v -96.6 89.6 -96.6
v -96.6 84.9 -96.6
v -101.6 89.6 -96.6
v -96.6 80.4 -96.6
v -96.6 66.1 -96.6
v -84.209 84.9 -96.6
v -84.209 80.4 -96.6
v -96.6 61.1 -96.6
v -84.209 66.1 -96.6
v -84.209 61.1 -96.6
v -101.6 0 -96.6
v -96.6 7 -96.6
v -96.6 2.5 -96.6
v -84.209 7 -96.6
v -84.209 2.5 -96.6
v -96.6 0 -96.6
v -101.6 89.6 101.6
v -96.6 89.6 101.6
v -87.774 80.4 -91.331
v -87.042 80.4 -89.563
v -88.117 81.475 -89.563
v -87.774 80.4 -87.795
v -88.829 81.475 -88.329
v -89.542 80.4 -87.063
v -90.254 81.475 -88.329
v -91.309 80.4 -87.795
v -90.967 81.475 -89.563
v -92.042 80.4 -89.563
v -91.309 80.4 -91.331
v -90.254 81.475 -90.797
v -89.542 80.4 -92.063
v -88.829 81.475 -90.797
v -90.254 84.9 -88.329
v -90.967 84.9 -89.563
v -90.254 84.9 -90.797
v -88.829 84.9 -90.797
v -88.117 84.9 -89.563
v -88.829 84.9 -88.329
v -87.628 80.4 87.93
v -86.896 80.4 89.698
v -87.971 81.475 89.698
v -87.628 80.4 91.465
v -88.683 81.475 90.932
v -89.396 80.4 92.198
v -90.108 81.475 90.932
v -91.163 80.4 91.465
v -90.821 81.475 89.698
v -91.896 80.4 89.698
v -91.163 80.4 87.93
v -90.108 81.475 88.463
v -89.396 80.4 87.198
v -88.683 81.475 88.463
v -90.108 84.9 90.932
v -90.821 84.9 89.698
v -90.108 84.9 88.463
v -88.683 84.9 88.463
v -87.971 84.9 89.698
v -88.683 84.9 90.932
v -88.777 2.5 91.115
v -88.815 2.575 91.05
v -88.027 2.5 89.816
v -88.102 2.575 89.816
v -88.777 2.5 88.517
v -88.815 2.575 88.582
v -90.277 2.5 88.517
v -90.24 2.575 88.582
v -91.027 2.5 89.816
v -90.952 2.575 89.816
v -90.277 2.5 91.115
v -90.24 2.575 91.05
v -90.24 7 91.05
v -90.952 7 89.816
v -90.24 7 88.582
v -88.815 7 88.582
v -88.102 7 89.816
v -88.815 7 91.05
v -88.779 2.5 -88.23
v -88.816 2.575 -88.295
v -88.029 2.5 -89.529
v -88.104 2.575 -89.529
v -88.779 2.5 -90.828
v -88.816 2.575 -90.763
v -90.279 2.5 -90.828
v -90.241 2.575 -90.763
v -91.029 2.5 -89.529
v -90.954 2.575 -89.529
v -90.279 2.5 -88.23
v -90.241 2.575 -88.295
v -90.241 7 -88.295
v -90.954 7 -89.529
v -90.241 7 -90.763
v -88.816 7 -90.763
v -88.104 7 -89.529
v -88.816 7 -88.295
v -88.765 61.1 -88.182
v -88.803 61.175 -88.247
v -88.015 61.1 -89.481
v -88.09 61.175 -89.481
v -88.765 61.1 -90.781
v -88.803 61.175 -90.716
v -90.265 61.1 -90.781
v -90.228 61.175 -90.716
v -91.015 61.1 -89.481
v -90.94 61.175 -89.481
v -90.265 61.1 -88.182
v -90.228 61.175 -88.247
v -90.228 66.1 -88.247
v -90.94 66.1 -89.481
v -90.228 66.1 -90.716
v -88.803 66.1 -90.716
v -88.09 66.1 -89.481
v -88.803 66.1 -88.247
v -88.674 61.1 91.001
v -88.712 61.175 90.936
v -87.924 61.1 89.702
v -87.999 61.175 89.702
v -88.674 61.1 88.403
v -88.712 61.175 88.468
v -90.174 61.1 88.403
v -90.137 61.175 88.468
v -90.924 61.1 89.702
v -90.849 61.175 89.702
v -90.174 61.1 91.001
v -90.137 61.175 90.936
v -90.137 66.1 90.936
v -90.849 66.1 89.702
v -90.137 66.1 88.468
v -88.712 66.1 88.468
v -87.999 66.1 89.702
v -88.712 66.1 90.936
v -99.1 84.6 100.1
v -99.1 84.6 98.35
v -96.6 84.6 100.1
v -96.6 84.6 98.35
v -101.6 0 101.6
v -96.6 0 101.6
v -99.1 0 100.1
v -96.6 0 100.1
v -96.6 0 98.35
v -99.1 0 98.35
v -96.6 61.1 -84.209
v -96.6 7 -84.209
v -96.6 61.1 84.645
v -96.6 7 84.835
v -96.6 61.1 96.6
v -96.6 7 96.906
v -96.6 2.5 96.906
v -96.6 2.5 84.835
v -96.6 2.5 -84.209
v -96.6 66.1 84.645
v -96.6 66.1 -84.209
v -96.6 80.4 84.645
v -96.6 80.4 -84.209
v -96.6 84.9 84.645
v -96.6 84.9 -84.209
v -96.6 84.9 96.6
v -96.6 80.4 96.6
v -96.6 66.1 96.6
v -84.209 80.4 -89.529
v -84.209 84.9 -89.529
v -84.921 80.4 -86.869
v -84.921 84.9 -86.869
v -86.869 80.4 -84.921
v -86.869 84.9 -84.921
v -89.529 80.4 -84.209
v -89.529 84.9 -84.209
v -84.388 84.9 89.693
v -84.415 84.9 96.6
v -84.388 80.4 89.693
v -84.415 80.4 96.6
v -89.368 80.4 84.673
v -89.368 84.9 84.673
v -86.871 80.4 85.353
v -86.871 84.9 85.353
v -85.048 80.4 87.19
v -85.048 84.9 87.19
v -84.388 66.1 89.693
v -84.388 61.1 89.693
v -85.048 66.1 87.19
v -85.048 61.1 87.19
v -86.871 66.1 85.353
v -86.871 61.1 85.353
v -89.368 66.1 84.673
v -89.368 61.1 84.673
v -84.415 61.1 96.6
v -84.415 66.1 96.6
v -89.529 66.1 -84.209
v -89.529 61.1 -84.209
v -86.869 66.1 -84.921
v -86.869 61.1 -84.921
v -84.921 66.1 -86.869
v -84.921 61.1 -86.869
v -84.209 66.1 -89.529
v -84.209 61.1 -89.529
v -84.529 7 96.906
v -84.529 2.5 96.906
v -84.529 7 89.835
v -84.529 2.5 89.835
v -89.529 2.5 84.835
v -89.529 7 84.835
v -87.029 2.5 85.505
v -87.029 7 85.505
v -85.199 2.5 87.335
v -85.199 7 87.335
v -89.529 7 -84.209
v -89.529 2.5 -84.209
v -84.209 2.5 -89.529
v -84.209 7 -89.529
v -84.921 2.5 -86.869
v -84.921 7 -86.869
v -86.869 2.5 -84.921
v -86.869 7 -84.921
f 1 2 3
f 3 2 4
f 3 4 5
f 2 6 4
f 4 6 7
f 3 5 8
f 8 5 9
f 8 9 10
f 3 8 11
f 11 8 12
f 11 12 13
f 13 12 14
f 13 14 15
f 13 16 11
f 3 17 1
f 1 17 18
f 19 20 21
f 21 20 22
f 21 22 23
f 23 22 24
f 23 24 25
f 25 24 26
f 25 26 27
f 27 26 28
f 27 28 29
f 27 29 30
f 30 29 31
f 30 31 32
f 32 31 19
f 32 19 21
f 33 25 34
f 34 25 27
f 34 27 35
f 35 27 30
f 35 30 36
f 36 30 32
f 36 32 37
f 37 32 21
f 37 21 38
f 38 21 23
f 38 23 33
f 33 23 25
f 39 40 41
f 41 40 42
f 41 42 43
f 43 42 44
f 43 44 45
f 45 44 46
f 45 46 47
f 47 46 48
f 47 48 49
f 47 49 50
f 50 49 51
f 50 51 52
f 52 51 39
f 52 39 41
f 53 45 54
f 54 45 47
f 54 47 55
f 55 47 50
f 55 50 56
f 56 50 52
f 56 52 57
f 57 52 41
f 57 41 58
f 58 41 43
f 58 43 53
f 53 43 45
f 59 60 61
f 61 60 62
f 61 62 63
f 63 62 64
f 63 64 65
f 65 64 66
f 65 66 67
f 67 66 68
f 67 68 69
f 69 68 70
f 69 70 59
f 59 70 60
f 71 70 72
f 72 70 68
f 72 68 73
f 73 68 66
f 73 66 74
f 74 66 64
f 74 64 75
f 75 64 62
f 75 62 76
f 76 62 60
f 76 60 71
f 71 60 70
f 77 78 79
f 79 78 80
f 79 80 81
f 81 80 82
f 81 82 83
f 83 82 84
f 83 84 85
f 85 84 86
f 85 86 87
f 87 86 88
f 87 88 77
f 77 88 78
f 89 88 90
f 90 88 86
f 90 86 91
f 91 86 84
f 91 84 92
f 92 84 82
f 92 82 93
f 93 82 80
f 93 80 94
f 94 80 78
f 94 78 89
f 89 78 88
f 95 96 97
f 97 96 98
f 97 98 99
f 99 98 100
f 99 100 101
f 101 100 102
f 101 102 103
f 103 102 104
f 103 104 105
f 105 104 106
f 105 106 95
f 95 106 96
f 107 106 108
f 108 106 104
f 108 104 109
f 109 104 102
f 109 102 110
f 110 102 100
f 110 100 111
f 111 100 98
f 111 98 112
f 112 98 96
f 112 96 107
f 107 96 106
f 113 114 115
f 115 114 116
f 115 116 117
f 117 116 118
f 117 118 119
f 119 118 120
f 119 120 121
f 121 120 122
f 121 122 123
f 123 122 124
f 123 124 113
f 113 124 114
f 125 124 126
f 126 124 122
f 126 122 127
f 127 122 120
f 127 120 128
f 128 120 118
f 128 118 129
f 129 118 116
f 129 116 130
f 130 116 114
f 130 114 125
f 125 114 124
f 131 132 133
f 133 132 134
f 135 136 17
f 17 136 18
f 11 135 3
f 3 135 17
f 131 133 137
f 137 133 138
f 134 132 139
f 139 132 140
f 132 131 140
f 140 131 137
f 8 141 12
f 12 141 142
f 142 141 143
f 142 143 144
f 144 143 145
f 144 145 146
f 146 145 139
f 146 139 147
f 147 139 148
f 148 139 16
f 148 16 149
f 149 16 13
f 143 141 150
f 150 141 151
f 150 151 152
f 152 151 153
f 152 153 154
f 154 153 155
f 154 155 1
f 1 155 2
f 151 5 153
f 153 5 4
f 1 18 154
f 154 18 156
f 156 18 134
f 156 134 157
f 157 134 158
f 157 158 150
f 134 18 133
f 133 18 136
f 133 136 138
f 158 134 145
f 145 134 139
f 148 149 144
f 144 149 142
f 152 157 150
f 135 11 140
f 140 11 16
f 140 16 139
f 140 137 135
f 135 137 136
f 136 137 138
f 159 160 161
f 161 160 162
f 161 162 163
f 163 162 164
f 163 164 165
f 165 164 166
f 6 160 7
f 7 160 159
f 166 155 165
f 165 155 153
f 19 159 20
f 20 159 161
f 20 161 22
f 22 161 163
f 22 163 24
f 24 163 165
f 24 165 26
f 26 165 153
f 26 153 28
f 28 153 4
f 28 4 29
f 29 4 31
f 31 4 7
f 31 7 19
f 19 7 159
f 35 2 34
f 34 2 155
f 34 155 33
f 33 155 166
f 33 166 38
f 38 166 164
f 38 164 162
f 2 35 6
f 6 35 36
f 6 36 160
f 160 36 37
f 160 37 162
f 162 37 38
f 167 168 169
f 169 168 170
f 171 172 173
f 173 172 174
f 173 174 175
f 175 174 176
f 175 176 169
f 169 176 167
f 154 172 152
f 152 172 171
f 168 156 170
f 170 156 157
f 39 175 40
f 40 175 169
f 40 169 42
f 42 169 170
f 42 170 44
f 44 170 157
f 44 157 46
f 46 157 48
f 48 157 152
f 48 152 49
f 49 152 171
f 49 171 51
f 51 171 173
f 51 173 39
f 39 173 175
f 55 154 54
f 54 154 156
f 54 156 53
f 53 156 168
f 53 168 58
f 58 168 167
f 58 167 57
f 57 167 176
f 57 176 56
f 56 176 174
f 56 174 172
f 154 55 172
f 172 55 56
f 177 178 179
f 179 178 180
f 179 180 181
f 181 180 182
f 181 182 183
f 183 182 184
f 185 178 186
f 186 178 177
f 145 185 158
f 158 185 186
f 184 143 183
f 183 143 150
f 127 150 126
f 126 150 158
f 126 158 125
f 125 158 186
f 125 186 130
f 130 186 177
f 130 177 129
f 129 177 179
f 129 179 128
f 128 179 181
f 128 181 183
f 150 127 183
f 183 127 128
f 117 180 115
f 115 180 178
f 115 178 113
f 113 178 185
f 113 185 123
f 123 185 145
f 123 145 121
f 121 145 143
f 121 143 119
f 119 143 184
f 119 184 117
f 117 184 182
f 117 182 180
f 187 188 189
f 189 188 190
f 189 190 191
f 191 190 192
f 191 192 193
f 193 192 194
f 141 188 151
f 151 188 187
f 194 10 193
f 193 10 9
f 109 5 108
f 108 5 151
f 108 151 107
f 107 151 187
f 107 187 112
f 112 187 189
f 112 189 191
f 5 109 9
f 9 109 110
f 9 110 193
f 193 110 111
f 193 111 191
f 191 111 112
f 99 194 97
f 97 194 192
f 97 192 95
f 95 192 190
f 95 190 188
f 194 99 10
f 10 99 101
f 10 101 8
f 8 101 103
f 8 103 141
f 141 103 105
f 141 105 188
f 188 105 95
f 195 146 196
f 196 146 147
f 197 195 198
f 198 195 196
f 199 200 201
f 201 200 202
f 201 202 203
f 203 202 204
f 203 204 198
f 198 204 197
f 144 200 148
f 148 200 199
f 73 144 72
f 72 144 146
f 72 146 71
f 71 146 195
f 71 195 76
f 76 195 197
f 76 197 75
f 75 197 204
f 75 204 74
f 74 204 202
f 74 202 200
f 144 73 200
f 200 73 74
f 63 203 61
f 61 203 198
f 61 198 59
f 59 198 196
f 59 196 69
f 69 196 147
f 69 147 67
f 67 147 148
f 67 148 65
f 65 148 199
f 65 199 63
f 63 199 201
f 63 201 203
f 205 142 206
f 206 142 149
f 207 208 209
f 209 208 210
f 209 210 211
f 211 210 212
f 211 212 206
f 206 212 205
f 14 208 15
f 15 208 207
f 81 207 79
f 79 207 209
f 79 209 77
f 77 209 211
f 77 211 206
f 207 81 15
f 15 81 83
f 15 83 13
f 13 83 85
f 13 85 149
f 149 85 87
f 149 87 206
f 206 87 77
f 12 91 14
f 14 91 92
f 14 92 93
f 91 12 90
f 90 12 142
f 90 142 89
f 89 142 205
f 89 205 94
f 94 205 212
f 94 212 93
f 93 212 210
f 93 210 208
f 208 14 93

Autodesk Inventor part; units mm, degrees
ref_plane "YZ Plane" through (0, 0, 0) normal (1, 0, 0) x (0, 1, 0)
sketch "Sketch1" plane through (0, 0, 0) normal (0, 1, 0) x (-1, 0, 0)
  line L0 (101.6, -101.6) -> (-101.6, -101.6)
  line L1 (-101.6, -101.6) -> (-101.6, 101.6)
  line L2 (-101.6, 101.6) -> (101.6, 101.6)
  line L3 (101.6, 101.6) -> (101.6, -101.6)
  line L4 (96.6, -96.6) -> (-96.6, -96.6)
  line L5 (-96.6, -96.6) -> (-96.6, 96.6)
  line L6 (-96.6, 96.6) -> (96.6, 96.6)
  line L7 (96.6, 96.6) -> (96.6, -96.6)
  line L8 (101.6, 101.6) -> (-40.4, 101.6)
  circle A0 centre (0, 0) radius 88.9
  circle A1 centre (0, 0) radius 109.3376
  line L9 (-40.4, 101.6) -> (-101.6, 40.4)
  line L10 (-45.4, 101.6) -> (-101.6, 45.4)
  line L11 (96.6, 96.6) -> (96.6, 101.6)
  line L12 (-45.4, 101.6) -> (-35.4, 101.6)
  line L13 (-35.4, 101.6) -> (-35.4, 96.6)
  line L14 (-35.4, 96.6) -> (-45.4, 96.6)
  line L15 (-45.4, 96.6) -> (-45.4, 101.6)
  point P0 (96.6, 51.2168)
  point P1 (101.6, 40.4)
  point P2 (101.6, -40.4)
  point P3 (96.6, -51.2168)
  point P4 (-96.6, 45.4)
  point P5 (-45.4, 96.6)
  dimension "d0" = 203.2
  dimension "d1" = 203.2
  dimension "d2" = 101.6
  dimension "d3" = 101.6
  dimension "d4" = 5
  dimension "d5" = 5
  dimension "d6" = 5
  dimension "d7" = 5
  dimension "d10" = 142
  dimension "d12" = 61.2
  dimension "d14" = 177.8
  dimension "d15" = 5
  dimension "d16" = 5
  dimension "d17" = 10
extrude "Extrusion1" add sketch "Sketch1" along normal blind 89.6 contours L0 A1 L4 L7 L3 | L0 A1 L4 | A1 L7 L3 | L0 L1 A1 L5 L4 | A1 L7 L11 L2 L3 | L1 L9 L5 A1 | L1 L10 A1 | A1 L10 L5 L9 | L5 L10 L6 L9 | L6 L9 L2 L13 | L15 A1 L9 | L6 L10 A1 L15 | A1 L15 L2 | A1 L10 L15
sketch "Sketch2" plane through (101.6, 0, 45.4) normal (0.7071068, 0, 0.7071068) x (0.7071068, 0, -0.7071068)
  line L0 (-179.888, 0) -> (-39.7394, 0) projected
  line L1 (-74.4788, 0) -> (-5, 0)
  line L2 (-5, 0) -> (-5, 38.1)
  line L3 (-5, 38.1) -> (-74.4788, 38.1)
  line L4 (-74.4788, 38.1) -> (-74.4788, 0)
  line L5 (0, 0) -> (0, 89.6) projected
  line L6 (-79.4788, 0) -> (-79.4788, 89.6) projected
  arc A0 (-5, 38.1) -> (-74.4788, 38.1) centre (-39.7394, 10.3696) ccw
  point P0 (-39.7394, 0)
  dimension "d20" = 5
  dimension "d21" = 5
  dimension "d22" = 38.1
  dimension "d33" = 44.45
extrude "Extrusion2" cut sketch "Sketch2" along normal mid plane 98.6
fillet "Fillet1" radius 3.175 2 edges at (101.6, 44.8, 45.4) (45.4, 44.8, 101.6)
sketch "Sketch4" plane through (101.6, 0, -101.6) normal (1, 0, 0) x (0, 0, -1)
  line L0 (-145.6849, 0) -> (-145.6849, 89.6) projected
  line L1 (-203.2, 0) -> (-203.2, 89.6) projected
  line L2 (-145.6849, 0) -> (-203.2, 0)
  line L3 (-203.2, 0) -> (-203.2, 2)
  line L4 (-203.2, 2) -> (-145.6849, 2)
  line L5 (-145.6849, 2) -> (-145.6849, 0)
  point P0 (-101.6, 0)
  point P1 (-203.2, 0)
  dimension "d28" = 2
extrude "Extrusion3" cut sketch "Sketch4" against normal blind 57.658
fillet "Fillet3" radius 3.175 1 edges at (73.5, 54.8196, 73.5)
fillet "Fillet4" radius 3.175 2 edges at (48.9355, 20.05, 98.0645) (98.0645, 20.05, 48.9355)
sketch "Sketch5" plane through (-96.6, 0, -96.6) normal (0, 0, 1) x (1, 0, 0)
  line L0 (0, 0) -> (0, 89.6) projected
  line L1 (0, 0) -> (12.7, 0)
  line L2 (12.7, 0) -> (12.7, 19.7)
  line L3 (12.7, 19.7) -> (0, 19.7)
  line L4 (0, 19.7) -> (0, 0)
  line L5 (12.7, 0) -> (0, 0)
  line L6 (0, 0) -> (0, 7)
  line L7 (0, 7) -> (12.7, 7)
  line L8 (12.7, 7) -> (12.7, 0)
  point P0 (96.6, 0)
  point P1 (0, 7)
  point P2 (12.7, 7)
  point P3 (0, 19.7)
  dimension "d34" = 12.7
  dimension "d35" = 7
  dimension "d36" = 12.7
extrude "Extrusion4" cut sketch "Sketch5" against normal blind 25.4 contours L0 L3 L2 L7
ref_plane "Work Plane3" through (-96.6, 7, -99.1) normal (0, 1, 0) x (1, 0, 0)
sketch "Sketch11" plane through (-96.6, 7, -99.1) normal (0, 1, 0) x (1, 0, 0)
  line L0 (0, -2.5) -> (0, -196.0064)
  line L1 (193.2, -2.5) -> (0, -2.5)
  line L2 (0, -2.5) -> (193.2, -2.5)
  line L3 (193.2, -144.8203) -> (141.8746, -196.0064)
  line L4 (193.2, -2.5) -> (193.2, -144.8203)
  line L5 (193.2, -144.8203) -> (141.8746, -196.0064)
  line L6 (141.8746, -196.0064) -> (0, -196.0064)
  line L7 (0, -196.0064) -> (0, -2.5)
  line L8 (0, -2.5) -> (7.0711, -9.5711)
  circle A0 centre (7.0711, -9.5711) radius 5.3203
  circle A1 centre (7.0711, -9.5711) radius 1
  line L9 (7.0711, -14.8914) -> (0, -14.8914)
  line L10 (7.0711, -9.5711) -> (7.0711, -14.8914)
  line L11 (7.0711, -9.5711) -> (12.3914, -9.5711)
  line L12 (12.3914, -2.5) -> (12.3914, -9.5711)
  line L13 (0, -196.0064) -> (7.0711, -188.9353)
  line L14 (0, -196.0064) -> (10, -196.0064) construction
  circle A2 centre (7.0711, -188.9353) radius 5
  circle A3 centre (7.0711, -188.9353) radius 1
  line L15 (7.0711, -188.9353) -> (12.0711, -188.9353)
  line L16 (12.0711, -196.0064) -> (12.0711, -188.9353)
  line L17 (7.0711, -188.9353) -> (7.0711, -183.9353)
  line L18 (0, -183.9353) -> (7.0711, -183.9353)
  line L19 (193.2, -2.5) -> (186.1289, -9.5711)
  circle A4 centre (186.1289, -9.5711) radius 5
  circle A5 centre (186.1289, -9.5711) radius 1
  line L20 (186.1289, -9.5711) -> (181.1289, -9.5711)
  line L21 (181.1289, -2.5) -> (181.1289, -9.5711)
  line L22 (186.1289, -9.5711) -> (186.1289, -14.5711)
  line L23 (193.2, -14.5711) -> (186.1289, -14.5711)
  line L24 (193.2, -142.5343) -> (193.2, -2.5)
  line L25 (0, -196.0064) -> (139.7178, -196.0064)
  line L26 (122, -124.8064) -> (198.2, -124.8064)
  line L27 (198.2, -188.3064) -> (198.2, 2.1936)
  line L28 (122, -124.8064) -> (122, -201.0064)
  line L29 (139.7178, -201.0064) -> (-5, -201.0064)
  line L30 (193.2, -124.8064) -> (183.2, -124.8064)
  circle A6 centre (183.2, -124.8064) radius 5
  circle A7 centre (183.2, -124.8064) radius 1
  line L31 (122, -196.0064) -> (122, -186.0064)
  line L32 (193.2, -2.5) -> (193.2, -144.5) projected
  line L33 (0, -2.5) -> (193.2, -2.5) projected
  line L34 (0, -200.7) -> (0, -2.5) projected
  line L35 (183.2, -119.8064) -> (193.2, -119.8064)
  line L36 (183.2, -124.8064) -> (183.2, -129.8064)
  line L37 (183.2, -129.8064) -> (193.2, -129.8064)
  point P0 (96.6, -99.1)
  point P1 (96.4746, -327.7)
  point P2 (-5, -201.0064)
  point P3 (0, -183.9353)
  point P4 (0, -196.0064)
  point P5 (12.3914, -2.5)
  point P6 (0, -14.8914)
  dimension "d96" = 10
  dimension "d97" = 2
  dimension "d98" = 10
  dimension "d99" = 45
  dimension "d100" = 10
  dimension "d101" = 2
  dimension "d102" = 10
  dimension "d103" = 10
  dimension "d104" = 2
  dimension "d105" = 76.2
  dimension "d106" = 76.2
  dimension "d109" = 2
  dimension "d113" = 228.6
  dimension "d114" = 0
  dimension "d115" = 0
  dimension "d116" = 0
  dimension "d117" = 0
extrude "Extrusion8" add sketch "Sketch11" against normal blind 4.5 contours L8 A0 L9 L0 | L1 L12 A0 L8 | A0 L11 A1 L8 | L8 A1 L10 A0 | L18 A2 L13 L0 | L10 A1 L11 A0 | L1 L19 A4 L21 | L13 A2 L16 L6 | L17 A3 L13 A2 | A2 L15 A3 L17 | L4 L23 A4 L19 | L20 A5 L22 A4 | A4 L19 A5 L20 | L13 A3 L15 A2 | A4 L22 A5 L19 | L4 L26 A6 L35 | L4 L37 A6 L26 | A6 L26 A7 | A6 L36 A7 L26 | L26 A7 L36 A6
sketch "Sketch12" plane through (-101.6, 0, 101.6) normal (0, 0, 1) x (1, 0, 0)
  line L0 (0, 0) -> (5, 0) projected
  line L1 (5, 19.7) -> (5, 89.6) projected
  line L2 (0, 0) -> (5, 0)
  line L3 (5, 0) -> (5, 61.1)
  line L4 (5, 61.1) -> (0, 61.1)
  line L5 (0, 61.1) -> (0, 0)
  point P0 (101.6, 0)
  dimension "d120" = 61.1
ref_plane "Work Plane4" through (-96.6, 61.1, 101.6) normal (0, 1, 0) x (-1, 0, 0)
sketch "Sketch13" plane through (-96.6, 61.1, 101.6) normal (0, 1, 0) x (-1, 0, 0)
  line L0 (0, -198.2) -> (0, -5)
  line L1 (-193.2, -198.2) -> (0, -198.2)
  line L2 (0, -198.2) -> (-193.2, -198.2)
  line L3 (-193.2, -56.1861) -> (-141.8746, -5)
  line L4 (-193.2, -198.2) -> (-193.2, -56.1861)
  line L5 (-193.2, -56.1861) -> (-141.8746, -5)
  line L6 (-141.8746, -5) -> (0, -5)
  line L7 (0, -5) -> (0, -198.2)
  line L8 (0, -198.2) -> (-7.0711, -191.1289)
  circle A0 centre (-7.0711, -191.1289) radius 5.3203
  circle A1 centre (-7.0711, -191.1289) radius 1
  line L9 (-7.0711, -185.8086) -> (0, -185.8086)
  line L10 (-7.0711, -191.1289) -> (-7.0711, -185.8086)
  line L11 (-7.0711, -191.1289) -> (-12.3914, -191.1289)
  line L12 (-12.3914, -198.2) -> (-12.3914, -191.1289)
  line L13 (0, -5) -> (-7.2124, -11.9268)
  line L14 (0, -5) -> (-9.998, -4.7981) construction
  circle A2 centre (-7.2124, -11.9268) radius 5
  circle A3 centre (-7.2124, -11.9268) radius 1
  line L15 (-7.2124, -11.9268) -> (-12.2124, -11.9073)
  line L16 (-12.1854, -5) -> (-12.2124, -11.9073)
  line L17 (-7.2124, -11.9268) -> (-7.2319, -16.9268)
  line L18 (0, -16.955) -> (-7.2319, -16.9268)
  line L19 (-193.2, -198.2) -> (-186.1289, -191.1289)
  circle A4 centre (-186.1289, -191.1289) radius 5
  circle A5 centre (-186.1289, -191.1289) radius 1
  line L20 (-186.1289, -191.1289) -> (-181.1289, -191.1289)
  line L21 (-181.1289, -198.2) -> (-181.1289, -191.1289)
  line L22 (-186.1289, -191.1289) -> (-186.1289, -186.1289)
  line L23 (-193.2, -186.1289) -> (-186.1289, -186.1289)
  line L24 (-193.2, -58.1657) -> (-193.2, -198.2)
  line L25 (0, -5) -> (-139.7178, -5)
  line L26 (-122, -76.2) -> (-198.2, -76.2)
  line L27 (-198.2, -12.5257) -> (-198.2, -203.0257)
  line L28 (-122, -76.2) -> (-122, 0)
  line L29 (-139.8151, 0) -> (4.9027, 0)
  line L30 (-193.2, -76.2) -> (-183.2973, -76.2)
  circle A6 centre (-183.2973, -76.2) radius 5
  circle A7 centre (-183.2973, -76.2) radius 1
  line L31 (-122, -5) -> (-122, -15)
  circle A8 centre (-122, -15) radius 5
  circle A9 centre (-122, -15) radius 1.75
  line L32 (-193.2, -198.2) -> (-193.2, -56.2)
  line L33 (0, -198.2) -> (-193.2, -198.2)
  line L34 (0, -0.1321) -> (0, -198.2)
  line L35 (-183.2973, -81.2) -> (-193.2, -81.2)
  line L36 (-183.2973, -76.2) -> (-183.2973, -71.2)
  line L37 (-183.2973, -71.2) -> (-193.2, -71.2)
  line L38 (-122, -15) -> (-127, -15)
  line L39 (-127, -15) -> (-127, -5)
  line L40 (-117, -15) -> (-117, -5)
  line L41 (0, 0) -> (0, -198.2) projected
  line L42 (0, -198.2) -> (-193.2, -198.2) projected
  line L43 (-198.2, -57.5151) -> (-198.2, -203.2) projected
  line L44 (0, -4.6936) -> (-12.0711, -4.6936) projected
  line L45 (5, 0) -> (0, 0) projected
  line L46 (-142, -5) -> (-132, -5) projected
  point P0 (-96.6, -101.6)
  point P1 (-96.6973, -101.7321)
  point P2 (-139.7178, -5)
  point P3 (-139.8151, 0)
  point P4 (4.9027, 0)
  point P5 (181.1289, -2.5)
  point P6 (193.2, -129.8064)
  point P7 (193.2, -119.8064)
  point P8 (117, -196.0064)
  point P9 (127, -196.0064)
  point P10 (0, -183.9353)
  point P11 (0, -196.0064)
  point P12 (12.3914, -2.5)
  point P13 (0, -14.8914)
  point P14 (-193.2, -71.2)
  point P15 (-193.2, -81.2)
  point P16 (0, -16.955)
  point P17 (0, -5)
  point P18 (-12.3914, -198.2)
  point P19 (0, -185.8086)
  dimension "d122" = 10
  dimension "d123" = 2
  dimension "d124" = 10
  dimension "d125" = 45
  dimension "d126" = 10
  dimension "d127" = 2
  dimension "d128" = 10
  dimension "d129" = 10
  dimension "d130" = 2
  dimension "d131" = 76.2
  dimension "d132" = 76.2
  dimension "d133" = 2
  dimension "d134" = 10
  dimension "d135" = 10
  dimension "d136" = 3.5
  dimension "d138" = 0
  dimension "d139" = 0
  dimension "d140" = 0
  dimension "d141" = 0
  dimension "d142" = 0
  dimension "d143" = 0
  dimension "d144" = 0
  dimension "d146" = 0
  dimension "d148" = 0
extrude "Extrusion9" add sketch "Sketch13" along normal blind 5 contours L8 A0 L9 L0 | L1 L12 A0 L8 | A0 L11 A1 L8 | L8 A1 L10 A0 | L18 A2 L13 L0 | L10 A1 L11 A0 | L1 L19 A4 L21 | L13 A2 L16 L6 | L17 A3 L13 A2 | A2 L15 A3 L17 | L4 L23 A4 L19 | L20 A5 L22 A4 | A4 L19 A5 L20 | L13 A3 L15 A2 | A4 L22 A5 L19
sketch "Sketch14" plane through (-101.6, 0, 101.6) normal (0, 0, 1) x (1, 0, 0)
  line L0 (12.2319, 61.1) -> (5, 61.1) projected
  line L1 (5, 62) -> (5, 84.9)
  line L2 (5, 0) -> (5, 89.6) projected
  line L3 (5, 84.9) -> (137, 84.9)
  line L4 (137, 0) -> (137, 89.6) projected
  point P0 (101.6, 0)
  point P1 (5, 61.1)
  dimension "d151" = 22.9
ref_plane "Work Plane5" through (-96.6, 84.9, 101.6) normal (0, -1, 0) x (1, 0, 0)
sketch "Sketch15" plane through (-96.6, 84.9, 101.6) normal (0, -1, 0) x (1, 0, 0)
  line L0 (0, -198.2) -> (0, -5)
  line L1 (-193.2, -198.2) -> (0, -198.2)
  line L2 (0, -198.2) -> (-193.2, -198.2)
  line L3 (-193.2, -56.1861) -> (-141.8746, -5)
  line L4 (-193.2, -198.2) -> (-193.2, -56.1861)
  line L5 (-193.2, -56.1861) -> (-141.8746, -5)
  line L6 (-141.8746, -5) -> (0, -5)
  line L7 (0, -5) -> (0, -198.2)
  line L8 (0, -198.2) -> (-7.0711, -191.1289)
  circle A0 centre (-7.0711, -191.1289) radius 5.3203
  circle A1 centre (-7.0711, -191.1289) radius 1
  line L9 (-7.0711, -185.8086) -> (0, -185.8086)
  line L10 (-7.0711, -191.1289) -> (-7.0711, -185.8086)
  line L11 (-7.0711, -191.1289) -> (-12.3914, -191.1289)
  line L12 (-12.3914, -198.2) -> (-12.3914, -191.1289)
  line L13 (0, -5) -> (-7.2124, -11.9268)
  line L14 (0, -5) -> (-9.998, -4.7981) construction
  circle A2 centre (-7.2124, -11.9268) radius 5
  circle A3 centre (-7.2124, -11.9268) radius 1
  line L15 (-7.2124, -11.9268) -> (-12.2124, -11.9073)
  line L16 (-12.1854, -5) -> (-12.2124, -11.9073)
  line L17 (-7.2124, -11.9268) -> (-7.2319, -16.9268)
  line L18 (0, -16.955) -> (-7.2319, -16.9268)
  line L19 (-193.2, -198.2) -> (-186.1289, -191.1289)
  circle A4 centre (-186.1289, -191.1289) radius 5
  circle A5 centre (-186.1289, -191.1289) radius 1
  line L20 (-186.1289, -191.1289) -> (-181.1289, -191.1289)
  line L21 (-181.1289, -198.2) -> (-181.1289, -191.1289)
  line L22 (-186.1289, -191.1289) -> (-186.1289, -186.1289)
  line L23 (-193.2, -186.1289) -> (-186.1289, -186.1289)
  line L24 (-193.2, -58.1657) -> (-193.2, -198.2)
  line L25 (0, -5) -> (-139.7178, -5)
  line L26 (-122, -76.2) -> (-198.2, -76.2)
  line L27 (-198.2, -12.5257) -> (-198.2, -203.0257)
  line L28 (-122, -76.2) -> (-122, 0)
  line L29 (-139.8151, 0) -> (4.9027, 0)
  line L30 (-193.2, -76.2) -> (-183.2973, -76.2)
  circle A6 centre (-183.2973, -76.2) radius 5
  circle A7 centre (-183.2973, -76.2) radius 1
  line L31 (-122, -5) -> (-122, -15)
  circle A8 centre (-122, -15) radius 5
  circle A9 centre (-122, -15) radius 1.75
  line L32 (-193.2, -198.2) -> (-193.2, -56.2)
  line L33 (0, -198.2) -> (-193.2, -198.2)
  line L34 (0, -0.1321) -> (0, -198.2)
  line L35 (-183.2973, -81.2) -> (-193.2, -81.2)
  line L36 (-183.2973, -76.2) -> (-183.2973, -71.2)
  line L37 (-183.2973, -71.2) -> (-193.2, -71.2)
  line L38 (-122, -15) -> (-127, -15)
  line L39 (-127, -15) -> (-127, -5)
  line L40 (-117, -15) -> (-117, -5)
  line L41 (0, 0) -> (0, -198.2)
  line L42 (0, -198.2) -> (-193.2, -198.2)
  line L43 (-198.2, -57.5151) -> (-198.2, -203.2)
  line L44 (0, -4.6936) -> (-12.0711, -4.6936)
  line L45 (5, 0) -> (0, 0)
  line L46 (-142, -5) -> (-132, -5)
  line L47 (193.2, -198.2) -> (0, -198.2)
  line L48 (0, -198.2) -> (193.2, -198.2)
  line L49 (193.2, -56.1861) -> (141.8746, -5)
  line L50 (193.2, -198.2) -> (193.2, -56.1861)
  line L51 (193.2, -56.1861) -> (141.8746, -5)
  line L52 (141.8746, -5) -> (0, -5)
  line L53 (0, -198.2) -> (7.0711, -191.1289)
  circle A10 centre (7.0711, -191.1289) radius 5.3203
  circle A11 centre (7.0711, -191.1289) radius 1
  line L54 (7.0711, -185.8086) -> (0, -185.8086)
  line L55 (7.0711, -191.1289) -> (7.0711, -185.8086)
  line L56 (7.0711, -191.1289) -> (12.3914, -191.1289)
  line L57 (12.3914, -198.2) -> (12.3914, -191.1289)
  line L58 (0, -5) -> (7.2124, -11.9268)
  line L59 (0, -5) -> (9.998, -4.7981) construction
  circle A12 centre (7.2124, -11.9268) radius 5
  circle A13 centre (7.2124, -11.9268) radius 1
  line L60 (7.2124, -11.9268) -> (12.2124, -11.9073)
  line L61 (12.1854, -5) -> (12.2124, -11.9073)
  line L62 (7.2124, -11.9268) -> (7.2319, -16.9268)
  line L63 (0, -16.955) -> (7.2319, -16.9268)
  line L64 (193.2, -198.2) -> (186.1289, -191.1289)
  circle A14 centre (186.1289, -191.1289) radius 5
  circle A15 centre (186.1289, -191.1289) radius 1
  line L65 (186.1289, -191.1289) -> (181.1289, -191.1289)
  line L66 (181.1289, -198.2) -> (181.1289, -191.1289)
  line L67 (186.1289, -191.1289) -> (186.1289, -186.1289)
  line L68 (193.2, -186.1289) -> (186.1289, -186.1289)
  line L69 (193.2, -58.1657) -> (193.2, -198.2)
  line L70 (0, -5) -> (139.7178, -5)
  line L71 (122, -76.2) -> (198.2, -76.2)
  line L72 (198.2, -12.5257) -> (198.2, -203.0257)
  line L73 (122, -76.2) -> (122, 0)
  line L74 (139.8151, 0) -> (-4.9027, 0)
  line L75 (122, -5) -> (122, -15)
  circle A16 centre (122, -15) radius 5
  circle A17 centre (122, -15) radius 1.75
  line L76 (193.2, -198.2) -> (193.2, -56.2)
  line L77 (0, -198.2) -> (193.2, -198.2)
  line L78 (122, -15) -> (127, -15)
  line L79 (127, -15) -> (127, -5)
  line L80 (117, -15) -> (117, -5)
  line L81 (0, -198.2) -> (193.2, -198.2)
  line L82 (198.2, -57.5151) -> (198.2, -203.2)
  line L83 (0, -4.6936) -> (12.0711, -4.6936)
  line L84 (-5, 0) -> (0, 0)
  line L85 (142, -5) -> (132, -5)
  line L86 (193.2, -56.2) -> (142, -5) projected
  line L87 (142, -5) -> (193.2, -56.2)
  line L88 (142, -5) -> (142, -11.9268)
  line L89 (142, -11.9268) -> (186.2732, -56.2)
  line L90 (193.2, -57.5151) -> (193.2, -56.2) projected
  line L91 (186.2732, -56.2) -> (193.2, -56.2)
  circle A18 centre (165.7974, -32.3329) radius 1
  point P0 (96.6, -101.6)
  point P1 (-96.6, -101.6)
  point P2 (-96.6973, -101.7321)
  point P3 (-139.7178, -5)
  point P4 (-139.8151, 0)
  point P5 (4.9027, 0)
  point P6 (181.1289, -2.5)
  point P7 (193.2, -129.8064)
  point P8 (193.2, -119.8064)
  point P9 (117, -196.0064)
  point P10 (127, -196.0064)
  point P11 (0, -183.9353)
  point P12 (0, -196.0064)
  point P13 (12.3914, -2.5)
  point P14 (0, -14.8914)
  point P15 (-193.2, -71.2)
  point P16 (-193.2, -81.2)
  point P17 (0, -16.955)
  point P18 (0, -5)
  point P19 (-12.3914, -198.2)
  point P20 (0, -185.8086)
  point P21 (96.6, -101.6)
  point P22 (96.6973, -101.7321)
  point P23 (139.7178, -5)
  point P24 (139.8151, 0)
  point P25 (-4.9027, 0)
  point P26 (0, -16.955)
  point P27 (0, -185.8086)
  point P28 (12.3914, -198.2)
  point P29 (188.0675, -51.0675)
  point P30 (142, -5.1251)
  dimension "d153" = 10
  dimension "d154" = 2
  dimension "d155" = 10
  dimension "d156" = 45
  dimension "d157" = 10
  dimension "d158" = 2
  dimension "d159" = 10
  dimension "d160" = 10
  dimension "d161" = 2
  dimension "d162" = 76.2
  dimension "d163" = 76.2
  dimension "d164" = 2
  dimension "d165" = 10
  dimension "d166" = 10
  dimension "d167" = 3.5
  dimension "d168" = 0
  dimension "d169" = 0
  dimension "d170" = 0
  dimension "d171" = 0
  dimension "d172" = 0
  dimension "d173" = 0
  dimension "d174" = 0
  dimension "d175" = 0
  dimension "d176" = 0
  dimension "d179" = 0.3064
  dimension "d210" = 2
  dimension "d211" = 2.5
extrude "Extrusion10" add sketch "Sketch15" along normal blind 4.5 contours L53 A10 L57 L47 | L0 L54 A10 L53 | A10 L55 A11 L53 | L53 A11 L56 A10 | L0 L58 A12 L63 | A10 L56 A11 L55 | L66 A14 L64 L47 | L52 L61 A12 L58 | L62 A13 L60 A12 | A12 L58 A13 L62 | L64 A14 L68 L50 | L65 A15 L64 A14 | A14 L67 A15 L65 | A12 L60 A13 L58 | L64 A15 L67 A14 | L91 L89 L88 L49 L86 | L49 L88 L86
fillet "Fillet5" radius 3.175 2 edges at (101.6, 44.8, -101.6) (-101.6, 44.8, -101.6)
sketch "Sketch16" plane through (0, 89.6, 0) normal (0, 1, 0) x (1, 0, 0)
  line L0 (-96.6, -101.6) -> (-96.6, 96.6) projected
  line L1 (-96.6, -98.35) -> (-99.1, -98.35)
  line L2 (-99.1, -98.35) -> (-99.1, -100.1)
  line L3 (-99.1, -100.1) -> (-96.6, -100.1)
  line L4 (-96.6, -100.1) -> (-96.6, -98.35)
  line L5 (-101.6, -101.6) -> (-96.6, -101.6) projected
  line L6 (35.4, -96.6) -> (35.4, -101.6) projected
  line L7 (35.4, -100.1) -> (37.9, -100.1)
  line L8 (37.9, -100.1) -> (37.9, -98.35)
  line L9 (37.9, -98.35) -> (35.4, -98.35)
  line L10 (35.4, -98.35) -> (35.4, -100.1)
  line L11 (35.4, -101.6) -> (44.0849, -101.6) projected
  line L12 (45.4, -96.6) -> (35.4, -96.6) projected
  line L13 (-96.6, -100.1) -> (35.4, -100.1)
  line L14 (-101.6, 98.425) -> (-101.6, -101.6) projected
  point P0 (0, 0)
  dimension "d182" = 1.5
  dimension "d183" = 1.75
  dimension "d184" = 2.5
  dimension "d185" = 1.5
  dimension "d186" = 1.75
  dimension "d187" = 2.5
  dimension "d188" = 1.75
  dimension "d191" = 132
  dimension "d194" = 2.5
extrude "Extrusion11" cut sketch "Sketch16" against normal through all
sketch "Sketch17" plane through (0, 0, 0) normal (0, -1, 0) x (1, 0, 0)
  point P0 (0, 0)
sketch "Sketch18" plane through (0, 89.6, 0) normal (0, 1, 0) x (1, 0, 0)
  line L0 (45.4, -96.6) -> (35.4, -96.6) projected
  line L1 (35.4, -101.6) -> (44.0849, -101.6) projected
  line L2 (35.4, -96.6) -> (39.0179, -96.6)
  line L3 (39.0179, -96.6) -> (39.0179, -101.6)
  line L4 (39.0179, -101.6) -> (35.4, -101.6)
  line L5 (35.4, -101.6) -> (35.4, -96.6)
  line L6 (-101.6, 98.425) -> (-101.6, -101.6) projected
  line L7 (-96.6, -101.6) -> (-96.6, -100.1) projected
  line L8 (-101.6, -96.6) -> (-96.6, -96.6)
  line L9 (-96.6, -96.6) -> (-96.6, -101.6)
  line L10 (-96.6, -101.6) -> (-101.6, -101.6)
  line L11 (-101.6, -101.6) -> (-101.6, -96.6)
  point P0 (0, 0)
  point P1 (-101.6, -101.6)
extrude "Extrusion12" add sketch "Sketch18" against normal blind 5
sketch "Sketch22" plane through (-96.6, 61.1, 101.6) normal (0, -1, 0) x (1, 0, 0)
  circle A0 centre (7.1759, -11.8979) radius 1.0267
  circle A1 centre (7.0845, -191.0815) radius 1.099
  circle A2 centre (186.1548, -191.1698) radius 1.0412
  point P0 (96.6, -101.6)
hole "Hole1" at (-89.4241, 61.1, 89.7021) at (-89.5155, 61.1, -89.4815) at (89.5548, 61.1, -89.5698) direction (0, 1, 0) diameter 2.85 depth 12.7 tip angle 118 countersink diameter 3 countersink angle 90 thread size "M3.5x0.6" class "6H" standard "ANSI Metric M Profile"
sketch "Sketch23" plane through (-96.6, 2.5, -99.1) normal (0, -1, 0) x (1, 0, 0)
  point P0 (96.6, 99.1)
sketch "Sketch24" plane through (-96.6, 2.5, -99.1) normal (0, -1, 0) x (1, 0, 0)
  circle A0 centre (7.0728, 188.9158) radius 1.0195
  circle A1 centre (7.0711, 9.5711) radius 1 projected
  circle A2 centre (7.0711, 9.5711) radius 1
  circle A3 centre (186.0543, 9.5711) radius 1.0028
  circle A4 centre (183.1847, 124.8098) radius 1.0762
  point P0 (96.6, 99.1)
hole "Hole2" at (-89.5272, 2.5, 89.8158) at (-89.5289, 2.5, -89.5289) at (89.4543, 2.5, -89.5289) at (86.5847, 2.5, 25.7098) direction (0, 1, 0) diameter 2.85 depth 12.7 tip angle 118 countersink diameter 3 countersink angle 90 thread size "M3.5x0.6" class "6H" standard "ANSI Metric M Profile"
sketch "Sketch25" plane through (-96.6, 80.4, 101.6) normal (0, -1, 0) x (1, 0, 0)
  circle A0 centre (7.2045, -11.9025) radius 1.0659
  circle A1 centre (7.0584, -191.1632) radius 1.0343
  circle A2 centre (186.0543, -191.1289) radius 1.5 projected
  circle A3 centre (186.0543, -191.1289) radius 1.0077
  circle A4 centre (183.0986, -75.9599) radius 1.4972
  circle A5 centre (165.7974, -32.3329) radius 1 projected
  circle A6 centre (165.7974, -32.3329) radius 1
  point P0 (96.6, -101.6)
hole "Hole3" at (69.1974, 80.4, 69.2671) at (86.4986, 80.4, 25.6401) at (89.4543, 80.4, -89.5289) at (-89.5416, 80.4, -89.5632) at (-89.3955, 80.4, 89.6975) direction (0, 1, 0) diameter 2.85 depth 12.7 tip angle 118 countersink diameter 5 countersink angle 90 thread size "M3.5x0.6" class "6H" standard "ANSI Metric M Profile"
sketch "Sketch26" plane through (0, 89.6, 0) normal (0, 1, 0) x (1, 0, 0)
  line L0 (101.6, -44.0849) -> (101.6, 98.425) projected
  line L1 (-101.6, 101.6) -> (101.6, 101.6)
  line L2 (101.6, 101.6) -> (101.6, 96.7077)
  line L3 (-101.6, 96.7077) -> (-101.6, 101.6)
  line L4 (-96.6, -101.6) -> (-96.6, 96.6) projected
  line L5 (-96.6, 96.6) -> (-102.5248, 96.6)
  line L6 (-102.5248, 96.6) -> (-102.5248, 104.7053)
  line L7 (-102.5248, 104.7053) -> (114.3325, 104.7053)
  line L8 (114.3325, 104.7053) -> (114.3325, -117.7606)
  line L9 (114.3325, -117.7606) -> (-73.8754, -117.7606)
  line L10 (-73.8754, -117.7606) -> (-77.4939, 96.6)
  line L11 (-96.6, 96.6) -> (96.6, 96.6) projected
  line L12 (-96.6, 96.6) -> (-77.4939, 96.6)
  point P0 (0, 0)
extrude "Extrusion13" cut sketch "Sketch26" against normal through all
equation "\"d1\" = d0"
equation "\"d2\" = 0.5 * d0"
equation "\"d3\" = 0.5 * d0"
properties part number "Box_Walls_2"
